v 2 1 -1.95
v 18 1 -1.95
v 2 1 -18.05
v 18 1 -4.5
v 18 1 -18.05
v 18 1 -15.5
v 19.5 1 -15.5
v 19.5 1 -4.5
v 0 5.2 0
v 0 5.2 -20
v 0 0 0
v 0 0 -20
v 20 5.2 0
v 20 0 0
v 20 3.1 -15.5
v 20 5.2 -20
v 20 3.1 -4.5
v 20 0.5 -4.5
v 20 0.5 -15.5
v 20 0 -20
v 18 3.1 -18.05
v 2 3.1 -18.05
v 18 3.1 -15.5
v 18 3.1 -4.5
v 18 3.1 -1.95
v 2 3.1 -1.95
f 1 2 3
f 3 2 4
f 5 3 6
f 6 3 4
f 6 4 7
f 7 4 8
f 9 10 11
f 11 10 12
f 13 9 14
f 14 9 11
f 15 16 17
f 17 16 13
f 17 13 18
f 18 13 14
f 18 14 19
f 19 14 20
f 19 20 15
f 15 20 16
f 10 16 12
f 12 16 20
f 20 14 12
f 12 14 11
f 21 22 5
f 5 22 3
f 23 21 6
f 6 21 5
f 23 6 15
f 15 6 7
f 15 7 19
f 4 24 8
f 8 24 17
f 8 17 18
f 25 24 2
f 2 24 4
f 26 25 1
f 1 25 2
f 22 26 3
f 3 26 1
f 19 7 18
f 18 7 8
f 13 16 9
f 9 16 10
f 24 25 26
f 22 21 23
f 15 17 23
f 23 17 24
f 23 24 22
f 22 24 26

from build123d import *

# Parameters (mm, degrees)
SKETCH1_W           = 20
SKETCH1_H           = 20
BOSS_EXTRUDE1_DEPTH = 1
BOSS_EXTRUDE2_DEPTH = 2.1
CHAMFER1_SIZE       = 0.5
SKETCH3_W           = 20
SKETCH3_H           = 20
BOSS_EXTRUDE3_DEPTH = 2.1


with BuildPart() as part:
    # Sketch1 → Boss-Extrude1 (new body)
    with BuildSketch(Plane(origin=(0, 0, 0), x_dir=(1, 0, 0), z_dir=(0, 1, 0))):
        with Locations((10, 10)):
            Rectangle(SKETCH1_W, SKETCH1_H)
    extrude(amount=BOSS_EXTRUDE1_DEPTH)

    # Sketch2 → Boss-Extrude2 (add)
    with BuildSketch(Plane(origin=(0, 1, 0), x_dir=(1, 0, 0), z_dir=(0, 1, 0))):
        Polygon((18, 15.5), (20, 15.5), (20, 20), (0, 20), (0, 0), (20, 0), (20, 4.5), (18, 4.5), (18, 1.95), (2, 1.95), (2, 18.05), (18, 18.05), align=None)
    extrude(amount=BOSS_EXTRUDE2_DEPTH)

    # Chamfer1
    chamfer1_edges = [part.edges().sort_by_distance(p)[0] for p in [
        (20, 1, -10),
    ]]
    chamfer(chamfer1_edges, length=CHAMFER1_SIZE)

    # Sketch3 → Boss-Extrude3 (add)
    with BuildSketch(Plane(origin=(0, 3.1, 0), x_dir=(1, 0, 0), z_dir=(0, 1, 0))):
        with Locations((10, 10)):
            Rectangle(SKETCH3_W, SKETCH3_H)
    extrude(amount=BOSS_EXTRUDE3_DEPTH)


solid = part.part
